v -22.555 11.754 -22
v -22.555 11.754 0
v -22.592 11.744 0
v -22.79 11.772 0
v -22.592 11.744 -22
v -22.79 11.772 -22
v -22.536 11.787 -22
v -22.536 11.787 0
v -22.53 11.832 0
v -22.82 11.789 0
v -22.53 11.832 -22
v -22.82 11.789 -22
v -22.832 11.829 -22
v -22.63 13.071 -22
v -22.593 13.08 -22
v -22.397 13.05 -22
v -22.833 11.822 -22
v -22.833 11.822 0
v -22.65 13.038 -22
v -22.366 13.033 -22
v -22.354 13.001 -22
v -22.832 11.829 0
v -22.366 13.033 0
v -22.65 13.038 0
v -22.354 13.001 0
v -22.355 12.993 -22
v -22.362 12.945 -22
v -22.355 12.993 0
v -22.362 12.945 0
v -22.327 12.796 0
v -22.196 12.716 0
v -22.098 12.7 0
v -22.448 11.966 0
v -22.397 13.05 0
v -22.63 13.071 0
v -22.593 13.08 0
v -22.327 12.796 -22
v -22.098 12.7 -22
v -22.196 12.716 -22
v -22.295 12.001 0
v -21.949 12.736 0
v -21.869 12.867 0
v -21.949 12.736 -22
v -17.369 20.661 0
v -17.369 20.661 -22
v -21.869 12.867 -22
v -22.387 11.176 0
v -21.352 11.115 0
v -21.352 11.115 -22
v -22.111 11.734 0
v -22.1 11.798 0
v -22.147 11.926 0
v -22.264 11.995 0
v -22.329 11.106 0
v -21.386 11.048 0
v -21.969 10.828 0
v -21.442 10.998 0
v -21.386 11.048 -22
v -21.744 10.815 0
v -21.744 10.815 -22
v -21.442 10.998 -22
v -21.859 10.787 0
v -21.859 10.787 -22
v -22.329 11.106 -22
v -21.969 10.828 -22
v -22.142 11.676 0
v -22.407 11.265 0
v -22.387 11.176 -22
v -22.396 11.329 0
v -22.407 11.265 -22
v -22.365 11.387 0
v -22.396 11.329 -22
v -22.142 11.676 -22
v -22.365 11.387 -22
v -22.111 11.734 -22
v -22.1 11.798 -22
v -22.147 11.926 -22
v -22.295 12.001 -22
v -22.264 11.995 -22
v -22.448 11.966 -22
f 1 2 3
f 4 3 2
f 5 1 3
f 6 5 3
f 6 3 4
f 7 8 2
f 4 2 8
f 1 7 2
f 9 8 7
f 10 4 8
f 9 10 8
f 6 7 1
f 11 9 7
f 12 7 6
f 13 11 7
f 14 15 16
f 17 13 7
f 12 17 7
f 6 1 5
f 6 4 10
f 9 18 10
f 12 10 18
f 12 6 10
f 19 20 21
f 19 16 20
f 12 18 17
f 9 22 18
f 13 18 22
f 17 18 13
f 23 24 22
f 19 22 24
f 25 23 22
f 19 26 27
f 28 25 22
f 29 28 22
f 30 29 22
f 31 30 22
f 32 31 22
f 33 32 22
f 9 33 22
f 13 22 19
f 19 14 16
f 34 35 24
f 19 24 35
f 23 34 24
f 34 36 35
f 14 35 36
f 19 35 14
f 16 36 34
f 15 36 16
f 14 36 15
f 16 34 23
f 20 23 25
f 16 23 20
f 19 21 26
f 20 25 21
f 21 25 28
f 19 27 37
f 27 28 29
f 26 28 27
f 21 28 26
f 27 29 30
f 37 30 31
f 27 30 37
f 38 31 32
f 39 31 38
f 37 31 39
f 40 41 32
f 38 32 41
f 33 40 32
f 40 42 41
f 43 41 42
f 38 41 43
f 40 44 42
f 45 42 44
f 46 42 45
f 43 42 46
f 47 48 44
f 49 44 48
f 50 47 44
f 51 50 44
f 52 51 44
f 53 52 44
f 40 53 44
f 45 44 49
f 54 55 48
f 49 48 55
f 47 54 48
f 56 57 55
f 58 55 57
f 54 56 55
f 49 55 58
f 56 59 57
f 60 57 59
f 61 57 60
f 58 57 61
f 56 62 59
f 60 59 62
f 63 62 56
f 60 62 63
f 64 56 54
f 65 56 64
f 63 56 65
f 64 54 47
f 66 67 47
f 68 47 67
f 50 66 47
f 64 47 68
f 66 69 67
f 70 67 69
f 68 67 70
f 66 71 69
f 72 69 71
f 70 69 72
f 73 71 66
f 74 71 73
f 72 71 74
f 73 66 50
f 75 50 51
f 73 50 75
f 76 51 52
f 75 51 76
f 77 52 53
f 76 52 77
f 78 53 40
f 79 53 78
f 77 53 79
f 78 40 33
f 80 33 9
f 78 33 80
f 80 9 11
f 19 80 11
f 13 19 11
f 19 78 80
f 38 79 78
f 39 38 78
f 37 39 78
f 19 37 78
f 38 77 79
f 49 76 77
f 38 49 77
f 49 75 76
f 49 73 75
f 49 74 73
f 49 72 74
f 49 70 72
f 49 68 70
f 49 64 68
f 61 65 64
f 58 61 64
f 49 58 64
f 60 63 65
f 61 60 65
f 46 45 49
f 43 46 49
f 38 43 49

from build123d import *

# Parameters (mm, degrees)
BOSS_EXTRUDE1_DEPTH = 22


with BuildPart() as part:
    # Sketch1 → Boss-Extrude1 (new body)
    with BuildSketch(Plane.XY):
        with BuildLine():
            Line((-21.35205925, 11.1154812), (-17.368827213, 20.661456443))
            Line((-17.368827213, 20.661456443), (-21.868827213, 12.867227809))
            ThreePointArc((-21.868827213, 12.867227809), (-21.948667572, 12.73617279), (-22.097868544, 12.700270549))
            Line((-22.097868544, 12.700270549), (-22.196215152, 12.715900014))
            ThreePointArc((-22.196215152, 12.715900014), (-22.326689682, 12.79594909), (-22.362345861, 12.94481176))
            Line((-22.362345861, 12.94481176), (-22.354687101, 12.993003628))
            ThreePointArc((-22.354687101, 12.993003628), (-22.363718798, 13.030380728), (-22.396614586, 13.050292692))
            Line((-22.396614586, 13.050292692), (-22.592962298, 13.079890225))
            ThreePointArc((-22.592962298, 13.079890225), (-22.630105552, 13.070679105), (-22.649856554, 13.037901612))
            Line((-22.649856554, 13.037901612), (-22.832052004, 11.829231305))
            ThreePointArc((-22.832052004, 11.829231305), (-22.822704304, 11.791903872), (-22.789609619, 11.772270774))
            Line((-22.789609619, 11.772270774), (-22.592446198, 11.744397206))
            ThreePointArc((-22.592446198, 11.744397206), (-22.555388987, 11.753948603), (-22.535939439, 11.786905866))
            Line((-22.535939439, 11.786905866), (-22.529535655, 11.832202971))
            ThreePointArc((-22.529535655, 11.832202971), (-22.448384623, 11.96650006), (-22.295290569, 12.00090077))
            Line((-22.295290569, 12.00090077), (-22.264046695, 11.995148315))
            ThreePointArc((-22.264046695, 11.995148315), (-22.113475119, 11.869945968), (-22.141972438, 11.6762056))
            Line((-22.141972438, 11.6762056), (-22.365452219, 11.3868424))
            ThreePointArc((-22.365452219, 11.3868424), (-22.405533487, 11.239109704), (-22.329412432, 11.106305176))
            Line((-22.329412432, 11.106305176), (-21.969472499, 10.828317868))
            ThreePointArc((-21.969472499, 10.828317868), (-21.858721207, 10.786937123), (-21.743952077, 10.81533187))
            Line((-21.743952077, 10.81533187), (-21.441501697, 10.997697404))
            ThreePointArc((-21.441501697, 10.997697404), (-21.385493263, 11.048018041), (-21.35205925, 11.1154812))
        make_face()
    extrude(amount=-BOSS_EXTRUDE1_DEPTH)


solid = part.part
